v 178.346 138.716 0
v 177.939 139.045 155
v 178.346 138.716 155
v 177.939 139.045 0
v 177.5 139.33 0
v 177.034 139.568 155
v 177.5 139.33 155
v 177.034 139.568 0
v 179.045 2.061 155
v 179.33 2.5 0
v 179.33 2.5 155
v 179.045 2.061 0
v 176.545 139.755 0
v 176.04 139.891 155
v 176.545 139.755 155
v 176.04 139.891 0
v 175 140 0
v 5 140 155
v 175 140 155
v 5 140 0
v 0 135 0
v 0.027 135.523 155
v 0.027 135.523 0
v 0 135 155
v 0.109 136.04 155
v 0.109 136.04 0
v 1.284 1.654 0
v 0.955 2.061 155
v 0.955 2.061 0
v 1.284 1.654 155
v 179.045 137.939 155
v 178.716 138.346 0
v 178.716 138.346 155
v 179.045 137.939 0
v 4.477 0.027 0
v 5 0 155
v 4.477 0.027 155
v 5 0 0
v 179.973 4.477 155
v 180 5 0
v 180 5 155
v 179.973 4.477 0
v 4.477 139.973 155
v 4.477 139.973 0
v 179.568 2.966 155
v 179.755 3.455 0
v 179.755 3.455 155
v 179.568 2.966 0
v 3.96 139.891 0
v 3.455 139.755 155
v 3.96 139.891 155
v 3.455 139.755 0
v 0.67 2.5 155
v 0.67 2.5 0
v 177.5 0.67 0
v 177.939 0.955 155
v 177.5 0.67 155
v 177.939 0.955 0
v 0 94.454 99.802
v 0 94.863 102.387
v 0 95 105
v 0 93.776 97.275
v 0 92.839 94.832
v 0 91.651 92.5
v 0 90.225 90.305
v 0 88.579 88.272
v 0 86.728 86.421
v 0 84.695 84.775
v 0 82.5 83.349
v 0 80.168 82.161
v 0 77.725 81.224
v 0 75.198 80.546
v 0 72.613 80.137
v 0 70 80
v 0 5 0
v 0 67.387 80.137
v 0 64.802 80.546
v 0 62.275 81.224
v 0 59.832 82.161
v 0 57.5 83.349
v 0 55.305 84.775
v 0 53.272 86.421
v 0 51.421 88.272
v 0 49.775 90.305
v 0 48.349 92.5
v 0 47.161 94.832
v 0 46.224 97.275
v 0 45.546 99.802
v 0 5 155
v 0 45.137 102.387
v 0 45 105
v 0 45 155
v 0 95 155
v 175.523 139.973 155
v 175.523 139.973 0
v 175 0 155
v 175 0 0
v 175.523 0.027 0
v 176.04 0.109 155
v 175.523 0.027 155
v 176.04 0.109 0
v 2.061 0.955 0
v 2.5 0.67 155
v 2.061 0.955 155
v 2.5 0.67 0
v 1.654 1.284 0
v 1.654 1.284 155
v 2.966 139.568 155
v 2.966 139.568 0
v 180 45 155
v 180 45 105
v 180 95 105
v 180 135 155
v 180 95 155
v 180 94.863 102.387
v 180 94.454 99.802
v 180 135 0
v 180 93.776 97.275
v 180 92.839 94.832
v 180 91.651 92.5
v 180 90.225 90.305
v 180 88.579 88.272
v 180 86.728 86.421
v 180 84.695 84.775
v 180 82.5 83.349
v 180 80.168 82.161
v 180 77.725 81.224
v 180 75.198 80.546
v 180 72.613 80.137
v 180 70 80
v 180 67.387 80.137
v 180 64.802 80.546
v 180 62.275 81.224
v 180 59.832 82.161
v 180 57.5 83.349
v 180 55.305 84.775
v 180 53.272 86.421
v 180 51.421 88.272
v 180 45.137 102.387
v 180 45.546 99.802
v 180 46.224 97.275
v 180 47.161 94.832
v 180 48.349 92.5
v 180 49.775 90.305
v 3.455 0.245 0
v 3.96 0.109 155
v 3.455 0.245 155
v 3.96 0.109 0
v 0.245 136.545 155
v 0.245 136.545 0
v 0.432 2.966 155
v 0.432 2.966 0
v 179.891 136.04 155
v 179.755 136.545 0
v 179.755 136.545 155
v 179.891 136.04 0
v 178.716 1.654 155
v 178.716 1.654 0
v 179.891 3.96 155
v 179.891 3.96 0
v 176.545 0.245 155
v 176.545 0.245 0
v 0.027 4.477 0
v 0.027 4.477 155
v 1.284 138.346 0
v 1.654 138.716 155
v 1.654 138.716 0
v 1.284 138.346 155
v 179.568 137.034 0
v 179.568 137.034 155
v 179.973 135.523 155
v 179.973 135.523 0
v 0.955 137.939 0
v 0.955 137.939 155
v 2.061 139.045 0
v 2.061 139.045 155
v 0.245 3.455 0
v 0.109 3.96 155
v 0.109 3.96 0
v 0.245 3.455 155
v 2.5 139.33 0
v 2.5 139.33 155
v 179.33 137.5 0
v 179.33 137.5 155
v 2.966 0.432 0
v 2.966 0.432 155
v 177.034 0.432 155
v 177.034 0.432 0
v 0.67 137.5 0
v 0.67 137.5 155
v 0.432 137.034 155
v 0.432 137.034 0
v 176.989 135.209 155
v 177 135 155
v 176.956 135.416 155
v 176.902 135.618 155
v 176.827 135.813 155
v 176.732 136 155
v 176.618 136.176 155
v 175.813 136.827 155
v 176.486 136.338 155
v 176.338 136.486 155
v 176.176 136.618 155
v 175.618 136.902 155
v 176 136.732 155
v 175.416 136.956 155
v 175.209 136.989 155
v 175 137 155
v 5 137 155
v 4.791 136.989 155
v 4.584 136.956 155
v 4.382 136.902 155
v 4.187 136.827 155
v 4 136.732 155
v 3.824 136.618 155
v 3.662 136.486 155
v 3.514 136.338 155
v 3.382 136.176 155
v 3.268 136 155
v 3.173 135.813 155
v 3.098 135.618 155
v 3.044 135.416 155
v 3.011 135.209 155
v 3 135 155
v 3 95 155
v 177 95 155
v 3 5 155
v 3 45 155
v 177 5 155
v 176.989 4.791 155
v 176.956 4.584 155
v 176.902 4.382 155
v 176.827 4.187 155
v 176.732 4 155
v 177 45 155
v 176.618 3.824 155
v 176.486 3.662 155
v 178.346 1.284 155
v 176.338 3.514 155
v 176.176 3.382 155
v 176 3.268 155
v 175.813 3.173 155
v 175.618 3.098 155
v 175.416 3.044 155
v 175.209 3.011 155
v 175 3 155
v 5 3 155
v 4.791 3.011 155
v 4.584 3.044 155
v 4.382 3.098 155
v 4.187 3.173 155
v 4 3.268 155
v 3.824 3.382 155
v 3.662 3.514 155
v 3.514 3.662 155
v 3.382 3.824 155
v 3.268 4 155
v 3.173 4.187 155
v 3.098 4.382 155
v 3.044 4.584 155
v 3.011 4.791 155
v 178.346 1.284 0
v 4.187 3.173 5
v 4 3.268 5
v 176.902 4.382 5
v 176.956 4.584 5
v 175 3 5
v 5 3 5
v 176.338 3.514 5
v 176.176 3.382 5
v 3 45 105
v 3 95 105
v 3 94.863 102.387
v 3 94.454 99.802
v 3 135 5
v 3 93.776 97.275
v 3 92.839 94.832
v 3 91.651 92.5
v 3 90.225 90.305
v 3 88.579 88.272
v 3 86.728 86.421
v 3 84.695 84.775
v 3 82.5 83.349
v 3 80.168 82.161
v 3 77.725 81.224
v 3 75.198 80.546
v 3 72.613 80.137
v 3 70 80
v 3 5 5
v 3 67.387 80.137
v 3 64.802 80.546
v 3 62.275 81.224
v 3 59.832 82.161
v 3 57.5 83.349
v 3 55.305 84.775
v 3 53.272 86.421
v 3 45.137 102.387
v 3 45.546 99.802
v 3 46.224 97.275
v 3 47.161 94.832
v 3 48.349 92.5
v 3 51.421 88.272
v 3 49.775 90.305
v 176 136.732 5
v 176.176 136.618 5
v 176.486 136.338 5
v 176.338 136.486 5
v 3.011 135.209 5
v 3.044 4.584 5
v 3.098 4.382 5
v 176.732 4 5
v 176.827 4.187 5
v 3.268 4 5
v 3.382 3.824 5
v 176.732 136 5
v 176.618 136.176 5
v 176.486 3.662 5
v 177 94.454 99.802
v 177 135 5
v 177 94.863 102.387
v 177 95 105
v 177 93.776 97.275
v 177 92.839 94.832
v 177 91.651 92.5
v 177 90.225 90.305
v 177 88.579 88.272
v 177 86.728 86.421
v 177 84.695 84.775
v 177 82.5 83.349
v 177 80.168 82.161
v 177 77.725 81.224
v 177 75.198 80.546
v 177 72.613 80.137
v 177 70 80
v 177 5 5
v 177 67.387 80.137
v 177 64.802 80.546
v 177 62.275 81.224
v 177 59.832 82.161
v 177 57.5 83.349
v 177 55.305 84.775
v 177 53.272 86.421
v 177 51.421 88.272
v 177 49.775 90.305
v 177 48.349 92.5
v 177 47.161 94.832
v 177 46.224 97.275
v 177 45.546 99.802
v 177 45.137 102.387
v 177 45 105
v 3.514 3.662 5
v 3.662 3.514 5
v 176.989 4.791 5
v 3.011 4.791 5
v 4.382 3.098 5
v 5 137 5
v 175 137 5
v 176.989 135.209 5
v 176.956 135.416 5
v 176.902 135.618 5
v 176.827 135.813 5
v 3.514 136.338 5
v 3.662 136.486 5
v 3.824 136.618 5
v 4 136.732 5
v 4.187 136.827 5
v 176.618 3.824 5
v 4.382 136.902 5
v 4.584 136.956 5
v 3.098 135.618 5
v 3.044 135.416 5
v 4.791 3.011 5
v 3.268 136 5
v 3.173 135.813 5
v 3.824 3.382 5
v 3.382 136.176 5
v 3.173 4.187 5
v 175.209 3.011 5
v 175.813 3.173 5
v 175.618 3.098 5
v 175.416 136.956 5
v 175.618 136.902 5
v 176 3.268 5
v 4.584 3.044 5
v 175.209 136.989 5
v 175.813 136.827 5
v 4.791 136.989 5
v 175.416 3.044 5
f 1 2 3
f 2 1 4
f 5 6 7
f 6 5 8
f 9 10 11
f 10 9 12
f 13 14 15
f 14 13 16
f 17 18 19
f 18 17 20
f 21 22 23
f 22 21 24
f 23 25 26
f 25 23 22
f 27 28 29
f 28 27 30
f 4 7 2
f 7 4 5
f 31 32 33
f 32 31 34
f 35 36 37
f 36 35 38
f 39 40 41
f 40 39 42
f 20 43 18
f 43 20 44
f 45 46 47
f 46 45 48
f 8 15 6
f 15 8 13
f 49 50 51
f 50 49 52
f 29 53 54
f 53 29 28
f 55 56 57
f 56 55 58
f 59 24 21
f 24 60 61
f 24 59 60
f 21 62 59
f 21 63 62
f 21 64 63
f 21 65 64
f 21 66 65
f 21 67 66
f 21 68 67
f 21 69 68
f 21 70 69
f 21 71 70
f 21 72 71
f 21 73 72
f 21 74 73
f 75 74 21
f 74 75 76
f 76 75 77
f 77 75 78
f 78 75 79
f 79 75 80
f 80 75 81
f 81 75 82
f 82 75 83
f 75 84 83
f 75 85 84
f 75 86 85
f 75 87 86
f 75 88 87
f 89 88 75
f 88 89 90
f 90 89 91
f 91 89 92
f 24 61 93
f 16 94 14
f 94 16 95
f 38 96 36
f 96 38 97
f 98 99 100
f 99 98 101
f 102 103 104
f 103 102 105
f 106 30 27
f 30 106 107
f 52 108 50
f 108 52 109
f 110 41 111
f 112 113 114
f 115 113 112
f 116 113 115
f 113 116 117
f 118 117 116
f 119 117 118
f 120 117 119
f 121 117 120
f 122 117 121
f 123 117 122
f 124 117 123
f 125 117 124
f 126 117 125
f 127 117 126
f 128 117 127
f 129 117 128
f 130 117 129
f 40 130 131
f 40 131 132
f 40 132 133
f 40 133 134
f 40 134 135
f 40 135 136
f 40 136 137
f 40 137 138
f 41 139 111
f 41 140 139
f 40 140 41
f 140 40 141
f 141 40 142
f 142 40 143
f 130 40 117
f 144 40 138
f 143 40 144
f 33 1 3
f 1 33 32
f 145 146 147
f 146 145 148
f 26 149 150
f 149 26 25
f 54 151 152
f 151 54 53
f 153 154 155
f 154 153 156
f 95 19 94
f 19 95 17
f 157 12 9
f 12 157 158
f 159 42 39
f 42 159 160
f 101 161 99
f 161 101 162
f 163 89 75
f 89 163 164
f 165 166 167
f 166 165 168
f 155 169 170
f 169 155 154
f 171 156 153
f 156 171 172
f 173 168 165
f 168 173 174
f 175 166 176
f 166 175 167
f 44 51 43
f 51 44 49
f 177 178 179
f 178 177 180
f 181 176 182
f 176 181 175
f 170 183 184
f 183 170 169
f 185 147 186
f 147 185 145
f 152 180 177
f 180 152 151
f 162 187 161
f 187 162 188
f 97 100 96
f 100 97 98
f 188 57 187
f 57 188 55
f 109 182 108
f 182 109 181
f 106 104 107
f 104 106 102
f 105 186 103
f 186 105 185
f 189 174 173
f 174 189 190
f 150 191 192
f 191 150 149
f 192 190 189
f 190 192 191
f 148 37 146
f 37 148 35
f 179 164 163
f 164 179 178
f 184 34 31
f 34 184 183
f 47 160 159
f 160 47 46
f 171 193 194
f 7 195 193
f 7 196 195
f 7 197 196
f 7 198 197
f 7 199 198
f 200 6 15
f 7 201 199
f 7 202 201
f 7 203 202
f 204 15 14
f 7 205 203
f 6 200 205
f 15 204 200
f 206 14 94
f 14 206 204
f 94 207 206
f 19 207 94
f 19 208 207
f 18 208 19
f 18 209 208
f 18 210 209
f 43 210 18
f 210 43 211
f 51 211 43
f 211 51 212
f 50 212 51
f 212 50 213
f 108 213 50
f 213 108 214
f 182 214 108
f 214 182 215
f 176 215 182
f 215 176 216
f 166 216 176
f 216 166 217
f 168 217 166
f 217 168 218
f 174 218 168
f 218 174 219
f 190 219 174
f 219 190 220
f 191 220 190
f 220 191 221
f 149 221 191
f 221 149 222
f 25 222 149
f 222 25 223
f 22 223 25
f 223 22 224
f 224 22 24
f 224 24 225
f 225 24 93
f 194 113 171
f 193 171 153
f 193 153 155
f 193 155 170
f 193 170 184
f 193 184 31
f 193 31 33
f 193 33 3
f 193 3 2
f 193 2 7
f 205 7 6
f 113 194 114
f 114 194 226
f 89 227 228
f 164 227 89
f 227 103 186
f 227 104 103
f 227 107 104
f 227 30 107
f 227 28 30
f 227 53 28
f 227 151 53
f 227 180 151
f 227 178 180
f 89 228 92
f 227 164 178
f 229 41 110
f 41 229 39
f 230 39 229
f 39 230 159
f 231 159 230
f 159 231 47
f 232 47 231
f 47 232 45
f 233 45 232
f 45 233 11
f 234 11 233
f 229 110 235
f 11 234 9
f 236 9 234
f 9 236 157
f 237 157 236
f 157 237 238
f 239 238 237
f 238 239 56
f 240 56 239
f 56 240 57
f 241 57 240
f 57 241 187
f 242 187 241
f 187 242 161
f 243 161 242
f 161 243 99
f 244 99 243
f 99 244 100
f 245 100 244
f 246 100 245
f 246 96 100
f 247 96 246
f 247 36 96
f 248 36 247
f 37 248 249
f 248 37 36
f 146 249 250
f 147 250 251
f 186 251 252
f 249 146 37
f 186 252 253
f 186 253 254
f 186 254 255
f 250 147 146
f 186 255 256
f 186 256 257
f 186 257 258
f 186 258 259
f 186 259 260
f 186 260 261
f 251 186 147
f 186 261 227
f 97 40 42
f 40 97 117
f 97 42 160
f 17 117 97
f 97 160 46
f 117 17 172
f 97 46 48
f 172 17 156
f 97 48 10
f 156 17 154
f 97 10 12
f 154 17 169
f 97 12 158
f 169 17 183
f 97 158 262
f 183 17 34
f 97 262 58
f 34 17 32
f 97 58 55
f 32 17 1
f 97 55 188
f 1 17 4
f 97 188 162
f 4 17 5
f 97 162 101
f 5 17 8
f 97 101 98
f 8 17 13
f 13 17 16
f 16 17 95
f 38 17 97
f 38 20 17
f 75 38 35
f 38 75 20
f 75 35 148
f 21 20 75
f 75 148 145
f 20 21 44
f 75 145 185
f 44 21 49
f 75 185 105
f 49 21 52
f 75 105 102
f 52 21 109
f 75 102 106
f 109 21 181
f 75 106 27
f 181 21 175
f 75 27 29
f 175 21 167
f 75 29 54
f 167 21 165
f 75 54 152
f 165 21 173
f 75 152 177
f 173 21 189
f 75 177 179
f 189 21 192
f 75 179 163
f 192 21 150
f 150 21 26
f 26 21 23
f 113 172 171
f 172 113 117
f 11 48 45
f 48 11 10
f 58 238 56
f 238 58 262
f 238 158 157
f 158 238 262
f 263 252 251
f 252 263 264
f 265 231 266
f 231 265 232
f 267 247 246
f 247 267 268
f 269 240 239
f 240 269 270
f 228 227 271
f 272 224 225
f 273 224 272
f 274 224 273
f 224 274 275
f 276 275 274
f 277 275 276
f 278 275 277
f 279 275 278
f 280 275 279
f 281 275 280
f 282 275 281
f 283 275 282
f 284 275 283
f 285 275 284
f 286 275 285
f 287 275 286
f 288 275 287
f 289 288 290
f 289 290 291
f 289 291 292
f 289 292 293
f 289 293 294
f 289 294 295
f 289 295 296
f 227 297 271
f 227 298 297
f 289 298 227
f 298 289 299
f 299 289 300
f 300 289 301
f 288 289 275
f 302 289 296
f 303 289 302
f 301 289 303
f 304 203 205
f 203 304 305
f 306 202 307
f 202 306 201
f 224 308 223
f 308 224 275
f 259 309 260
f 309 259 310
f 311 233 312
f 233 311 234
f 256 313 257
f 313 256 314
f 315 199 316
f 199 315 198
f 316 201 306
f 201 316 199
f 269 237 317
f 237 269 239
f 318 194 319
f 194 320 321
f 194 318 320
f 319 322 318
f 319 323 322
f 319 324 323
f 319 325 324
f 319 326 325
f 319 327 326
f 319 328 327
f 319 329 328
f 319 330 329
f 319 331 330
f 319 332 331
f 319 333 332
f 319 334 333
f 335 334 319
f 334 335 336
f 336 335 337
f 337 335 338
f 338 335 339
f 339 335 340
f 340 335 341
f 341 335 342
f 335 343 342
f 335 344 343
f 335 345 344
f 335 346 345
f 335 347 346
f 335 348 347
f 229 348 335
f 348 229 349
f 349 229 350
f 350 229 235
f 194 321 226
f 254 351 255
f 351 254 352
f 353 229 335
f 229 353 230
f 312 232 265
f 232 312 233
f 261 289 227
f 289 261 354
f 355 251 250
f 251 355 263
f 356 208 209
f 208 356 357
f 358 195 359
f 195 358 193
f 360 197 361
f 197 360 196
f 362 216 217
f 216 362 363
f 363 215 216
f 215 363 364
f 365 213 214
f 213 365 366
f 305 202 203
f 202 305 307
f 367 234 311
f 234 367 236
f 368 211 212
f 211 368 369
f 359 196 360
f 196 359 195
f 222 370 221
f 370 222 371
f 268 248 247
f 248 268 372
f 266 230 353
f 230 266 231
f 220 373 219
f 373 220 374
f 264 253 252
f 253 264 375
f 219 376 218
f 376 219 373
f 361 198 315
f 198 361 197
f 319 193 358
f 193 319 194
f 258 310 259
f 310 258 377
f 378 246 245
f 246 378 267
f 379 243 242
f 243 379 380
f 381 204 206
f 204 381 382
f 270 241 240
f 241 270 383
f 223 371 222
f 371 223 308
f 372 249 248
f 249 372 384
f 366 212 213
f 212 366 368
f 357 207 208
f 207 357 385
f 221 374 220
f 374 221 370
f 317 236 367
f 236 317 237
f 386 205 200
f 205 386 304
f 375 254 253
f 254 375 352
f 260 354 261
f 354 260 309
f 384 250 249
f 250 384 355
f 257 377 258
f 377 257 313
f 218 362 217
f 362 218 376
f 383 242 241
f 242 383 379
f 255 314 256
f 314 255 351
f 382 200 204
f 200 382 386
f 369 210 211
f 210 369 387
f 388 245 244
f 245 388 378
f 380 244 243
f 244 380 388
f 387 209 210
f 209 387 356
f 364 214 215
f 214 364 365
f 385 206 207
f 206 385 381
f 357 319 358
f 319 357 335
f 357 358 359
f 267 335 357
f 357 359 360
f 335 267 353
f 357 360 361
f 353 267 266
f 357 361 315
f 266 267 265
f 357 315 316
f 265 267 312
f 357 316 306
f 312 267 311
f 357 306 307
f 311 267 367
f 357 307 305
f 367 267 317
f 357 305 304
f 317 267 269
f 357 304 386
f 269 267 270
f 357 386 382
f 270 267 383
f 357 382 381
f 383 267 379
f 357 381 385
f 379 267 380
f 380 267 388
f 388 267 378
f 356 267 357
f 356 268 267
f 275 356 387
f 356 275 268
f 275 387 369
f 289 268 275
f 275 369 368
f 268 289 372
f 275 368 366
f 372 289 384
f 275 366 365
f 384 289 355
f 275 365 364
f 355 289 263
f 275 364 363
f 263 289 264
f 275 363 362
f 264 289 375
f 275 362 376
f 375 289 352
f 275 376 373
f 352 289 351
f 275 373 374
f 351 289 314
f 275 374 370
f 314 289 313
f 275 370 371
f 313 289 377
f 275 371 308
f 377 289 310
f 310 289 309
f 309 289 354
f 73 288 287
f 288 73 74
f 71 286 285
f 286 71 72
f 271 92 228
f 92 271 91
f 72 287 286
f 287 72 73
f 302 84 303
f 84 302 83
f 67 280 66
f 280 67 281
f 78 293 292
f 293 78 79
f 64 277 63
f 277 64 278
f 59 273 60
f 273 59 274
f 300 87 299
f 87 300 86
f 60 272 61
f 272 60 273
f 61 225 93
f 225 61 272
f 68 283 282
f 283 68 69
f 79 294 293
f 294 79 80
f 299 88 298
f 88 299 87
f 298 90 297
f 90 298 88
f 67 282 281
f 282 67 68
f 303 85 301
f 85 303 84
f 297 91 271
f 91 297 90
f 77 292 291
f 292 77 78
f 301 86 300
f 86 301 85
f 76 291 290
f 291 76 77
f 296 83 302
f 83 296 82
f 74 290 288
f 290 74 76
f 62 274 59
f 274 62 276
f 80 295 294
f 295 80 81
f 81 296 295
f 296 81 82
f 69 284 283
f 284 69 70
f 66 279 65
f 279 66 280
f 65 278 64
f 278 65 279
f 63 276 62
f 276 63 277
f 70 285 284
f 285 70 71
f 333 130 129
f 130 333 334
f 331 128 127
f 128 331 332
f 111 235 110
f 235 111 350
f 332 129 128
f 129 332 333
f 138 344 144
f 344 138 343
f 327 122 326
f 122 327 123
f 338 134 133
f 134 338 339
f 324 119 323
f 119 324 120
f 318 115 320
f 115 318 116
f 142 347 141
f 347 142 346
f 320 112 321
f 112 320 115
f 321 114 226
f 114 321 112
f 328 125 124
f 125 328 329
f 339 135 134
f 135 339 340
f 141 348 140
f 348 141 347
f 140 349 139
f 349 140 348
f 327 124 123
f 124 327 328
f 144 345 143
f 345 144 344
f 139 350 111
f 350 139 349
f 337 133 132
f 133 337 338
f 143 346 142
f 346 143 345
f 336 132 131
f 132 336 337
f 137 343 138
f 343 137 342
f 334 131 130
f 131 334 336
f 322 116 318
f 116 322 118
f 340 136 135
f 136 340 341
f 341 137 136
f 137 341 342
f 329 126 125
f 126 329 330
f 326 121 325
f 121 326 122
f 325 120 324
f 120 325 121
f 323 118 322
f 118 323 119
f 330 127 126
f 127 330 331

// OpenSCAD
// file: pump_protector.scad
// ============================================
// Wasser PB-60EA Booster Pump Protector
// Shared parameters and modules
// ============================================
// Include this file in pump_protector_body.scad
// and pump_protector_lid.scad.
// ============================================

// --- Main Parameters ---
box_length = 180;   // X dimension (mm)
box_width  = 140;   // Y dimension (mm)
box_height = 160;   // Z dimension (mm)
wall       = 3;     // Wall thickness (mm)
floor_th   = 5;     // Floor thickness (mm)

// --- Lid Parameters ---
lid_top_th    = 5;    // Solid top plate thickness (mm)
lip_height    = 15;   // Outer grip skirt depth (mm)
lip_clearance = 0.4;  // Gap for easy fit (mm per side)

// --- Pipe Cutout Parameters ---
cut_width        = 50;   // Width of horseshoe cut (mm)
cut_radius       = cut_width / 2;
pipe_notch_depth = 50;   // How far the U-shape cuts down from the top (mm)

// --- Rounded Edge Parameters ---
corner_radius = 5;

// --- Resolution ---
$fn = 60;

// ============================================
// Modules
// ============================================

// Horseshoe (U-shape) notch cut from top of wall
module horseshoe_cutout(r, notch_depth, depth) {
    rotate([90, 0, 0])
        linear_extrude(height = depth, center = true)
            union() {
                circle(r = r);
                translate([-r, 0, 0])
                    square([r * 2, notch_depth]);
            }
}

// Rounded box primitive
module rounded_box(l, w, h, r) {
    hull() {
        for (x = [r, l - r])
            for (y = [r, w - r])
                translate([x, y, 0])
                    cylinder(r = r, h = h);
    }
}

// Body (with floor, open top)
module protector_body() {
    body_h = box_height - lid_top_th;

    difference() {
        rounded_box(box_length, box_width, body_h, corner_radius);

        // Hollow interior
        translate([wall, wall, floor_th])
            rounded_box(
                box_length - 2 * wall,
                box_width  - 2 * wall,
                body_h - floor_th + 1,
                max(corner_radius - wall, 1)
            );

        // Pipe cutout 1: Left side
        translate([0, box_width / 2, body_h - pipe_notch_depth])
            rotate([0, 0, 90])
                horseshoe_cutout(cut_radius, pipe_notch_depth + 1, wall * 3);

        // Pipe cutout 2: Right side
        translate([box_length, box_width / 2, body_h - pipe_notch_depth])
            rotate([0, 0, 90])
                horseshoe_cutout(cut_radius, pipe_notch_depth + 1, wall * 3);
    }
}

// Lid (solid top + outer grip skirt)
module protector_lid() {
    grip_wall   = wall;
    grip_length = box_length + 2 * (grip_wall + lip_clearance);
    grip_width  = box_width  + 2 * (grip_wall + lip_clearance);
    grip_r      = corner_radius + grip_wall + lip_clearance;

    union() {
        rounded_box(grip_length, grip_width, lid_top_th, grip_r);

        translate([0, 0, -lip_height])
            difference() {
                rounded_box(grip_length, grip_width, lip_height, grip_r);

                translate([grip_wall + lip_clearance, grip_wall + lip_clearance, -1])
                    rounded_box(
                        box_length,
                        box_width,
                        lip_height + 2,
                        corner_radius
                    );
            }
    }
}
// main file
// ============================================
// Wasser PB-60EA Booster Pump Protector — BODY
// Print with floor on build plate, open top up.
// No supports needed.
// Size: 180 x 140 x 155 mm
// ============================================

include <pump_protector.scad>

protector_body();
